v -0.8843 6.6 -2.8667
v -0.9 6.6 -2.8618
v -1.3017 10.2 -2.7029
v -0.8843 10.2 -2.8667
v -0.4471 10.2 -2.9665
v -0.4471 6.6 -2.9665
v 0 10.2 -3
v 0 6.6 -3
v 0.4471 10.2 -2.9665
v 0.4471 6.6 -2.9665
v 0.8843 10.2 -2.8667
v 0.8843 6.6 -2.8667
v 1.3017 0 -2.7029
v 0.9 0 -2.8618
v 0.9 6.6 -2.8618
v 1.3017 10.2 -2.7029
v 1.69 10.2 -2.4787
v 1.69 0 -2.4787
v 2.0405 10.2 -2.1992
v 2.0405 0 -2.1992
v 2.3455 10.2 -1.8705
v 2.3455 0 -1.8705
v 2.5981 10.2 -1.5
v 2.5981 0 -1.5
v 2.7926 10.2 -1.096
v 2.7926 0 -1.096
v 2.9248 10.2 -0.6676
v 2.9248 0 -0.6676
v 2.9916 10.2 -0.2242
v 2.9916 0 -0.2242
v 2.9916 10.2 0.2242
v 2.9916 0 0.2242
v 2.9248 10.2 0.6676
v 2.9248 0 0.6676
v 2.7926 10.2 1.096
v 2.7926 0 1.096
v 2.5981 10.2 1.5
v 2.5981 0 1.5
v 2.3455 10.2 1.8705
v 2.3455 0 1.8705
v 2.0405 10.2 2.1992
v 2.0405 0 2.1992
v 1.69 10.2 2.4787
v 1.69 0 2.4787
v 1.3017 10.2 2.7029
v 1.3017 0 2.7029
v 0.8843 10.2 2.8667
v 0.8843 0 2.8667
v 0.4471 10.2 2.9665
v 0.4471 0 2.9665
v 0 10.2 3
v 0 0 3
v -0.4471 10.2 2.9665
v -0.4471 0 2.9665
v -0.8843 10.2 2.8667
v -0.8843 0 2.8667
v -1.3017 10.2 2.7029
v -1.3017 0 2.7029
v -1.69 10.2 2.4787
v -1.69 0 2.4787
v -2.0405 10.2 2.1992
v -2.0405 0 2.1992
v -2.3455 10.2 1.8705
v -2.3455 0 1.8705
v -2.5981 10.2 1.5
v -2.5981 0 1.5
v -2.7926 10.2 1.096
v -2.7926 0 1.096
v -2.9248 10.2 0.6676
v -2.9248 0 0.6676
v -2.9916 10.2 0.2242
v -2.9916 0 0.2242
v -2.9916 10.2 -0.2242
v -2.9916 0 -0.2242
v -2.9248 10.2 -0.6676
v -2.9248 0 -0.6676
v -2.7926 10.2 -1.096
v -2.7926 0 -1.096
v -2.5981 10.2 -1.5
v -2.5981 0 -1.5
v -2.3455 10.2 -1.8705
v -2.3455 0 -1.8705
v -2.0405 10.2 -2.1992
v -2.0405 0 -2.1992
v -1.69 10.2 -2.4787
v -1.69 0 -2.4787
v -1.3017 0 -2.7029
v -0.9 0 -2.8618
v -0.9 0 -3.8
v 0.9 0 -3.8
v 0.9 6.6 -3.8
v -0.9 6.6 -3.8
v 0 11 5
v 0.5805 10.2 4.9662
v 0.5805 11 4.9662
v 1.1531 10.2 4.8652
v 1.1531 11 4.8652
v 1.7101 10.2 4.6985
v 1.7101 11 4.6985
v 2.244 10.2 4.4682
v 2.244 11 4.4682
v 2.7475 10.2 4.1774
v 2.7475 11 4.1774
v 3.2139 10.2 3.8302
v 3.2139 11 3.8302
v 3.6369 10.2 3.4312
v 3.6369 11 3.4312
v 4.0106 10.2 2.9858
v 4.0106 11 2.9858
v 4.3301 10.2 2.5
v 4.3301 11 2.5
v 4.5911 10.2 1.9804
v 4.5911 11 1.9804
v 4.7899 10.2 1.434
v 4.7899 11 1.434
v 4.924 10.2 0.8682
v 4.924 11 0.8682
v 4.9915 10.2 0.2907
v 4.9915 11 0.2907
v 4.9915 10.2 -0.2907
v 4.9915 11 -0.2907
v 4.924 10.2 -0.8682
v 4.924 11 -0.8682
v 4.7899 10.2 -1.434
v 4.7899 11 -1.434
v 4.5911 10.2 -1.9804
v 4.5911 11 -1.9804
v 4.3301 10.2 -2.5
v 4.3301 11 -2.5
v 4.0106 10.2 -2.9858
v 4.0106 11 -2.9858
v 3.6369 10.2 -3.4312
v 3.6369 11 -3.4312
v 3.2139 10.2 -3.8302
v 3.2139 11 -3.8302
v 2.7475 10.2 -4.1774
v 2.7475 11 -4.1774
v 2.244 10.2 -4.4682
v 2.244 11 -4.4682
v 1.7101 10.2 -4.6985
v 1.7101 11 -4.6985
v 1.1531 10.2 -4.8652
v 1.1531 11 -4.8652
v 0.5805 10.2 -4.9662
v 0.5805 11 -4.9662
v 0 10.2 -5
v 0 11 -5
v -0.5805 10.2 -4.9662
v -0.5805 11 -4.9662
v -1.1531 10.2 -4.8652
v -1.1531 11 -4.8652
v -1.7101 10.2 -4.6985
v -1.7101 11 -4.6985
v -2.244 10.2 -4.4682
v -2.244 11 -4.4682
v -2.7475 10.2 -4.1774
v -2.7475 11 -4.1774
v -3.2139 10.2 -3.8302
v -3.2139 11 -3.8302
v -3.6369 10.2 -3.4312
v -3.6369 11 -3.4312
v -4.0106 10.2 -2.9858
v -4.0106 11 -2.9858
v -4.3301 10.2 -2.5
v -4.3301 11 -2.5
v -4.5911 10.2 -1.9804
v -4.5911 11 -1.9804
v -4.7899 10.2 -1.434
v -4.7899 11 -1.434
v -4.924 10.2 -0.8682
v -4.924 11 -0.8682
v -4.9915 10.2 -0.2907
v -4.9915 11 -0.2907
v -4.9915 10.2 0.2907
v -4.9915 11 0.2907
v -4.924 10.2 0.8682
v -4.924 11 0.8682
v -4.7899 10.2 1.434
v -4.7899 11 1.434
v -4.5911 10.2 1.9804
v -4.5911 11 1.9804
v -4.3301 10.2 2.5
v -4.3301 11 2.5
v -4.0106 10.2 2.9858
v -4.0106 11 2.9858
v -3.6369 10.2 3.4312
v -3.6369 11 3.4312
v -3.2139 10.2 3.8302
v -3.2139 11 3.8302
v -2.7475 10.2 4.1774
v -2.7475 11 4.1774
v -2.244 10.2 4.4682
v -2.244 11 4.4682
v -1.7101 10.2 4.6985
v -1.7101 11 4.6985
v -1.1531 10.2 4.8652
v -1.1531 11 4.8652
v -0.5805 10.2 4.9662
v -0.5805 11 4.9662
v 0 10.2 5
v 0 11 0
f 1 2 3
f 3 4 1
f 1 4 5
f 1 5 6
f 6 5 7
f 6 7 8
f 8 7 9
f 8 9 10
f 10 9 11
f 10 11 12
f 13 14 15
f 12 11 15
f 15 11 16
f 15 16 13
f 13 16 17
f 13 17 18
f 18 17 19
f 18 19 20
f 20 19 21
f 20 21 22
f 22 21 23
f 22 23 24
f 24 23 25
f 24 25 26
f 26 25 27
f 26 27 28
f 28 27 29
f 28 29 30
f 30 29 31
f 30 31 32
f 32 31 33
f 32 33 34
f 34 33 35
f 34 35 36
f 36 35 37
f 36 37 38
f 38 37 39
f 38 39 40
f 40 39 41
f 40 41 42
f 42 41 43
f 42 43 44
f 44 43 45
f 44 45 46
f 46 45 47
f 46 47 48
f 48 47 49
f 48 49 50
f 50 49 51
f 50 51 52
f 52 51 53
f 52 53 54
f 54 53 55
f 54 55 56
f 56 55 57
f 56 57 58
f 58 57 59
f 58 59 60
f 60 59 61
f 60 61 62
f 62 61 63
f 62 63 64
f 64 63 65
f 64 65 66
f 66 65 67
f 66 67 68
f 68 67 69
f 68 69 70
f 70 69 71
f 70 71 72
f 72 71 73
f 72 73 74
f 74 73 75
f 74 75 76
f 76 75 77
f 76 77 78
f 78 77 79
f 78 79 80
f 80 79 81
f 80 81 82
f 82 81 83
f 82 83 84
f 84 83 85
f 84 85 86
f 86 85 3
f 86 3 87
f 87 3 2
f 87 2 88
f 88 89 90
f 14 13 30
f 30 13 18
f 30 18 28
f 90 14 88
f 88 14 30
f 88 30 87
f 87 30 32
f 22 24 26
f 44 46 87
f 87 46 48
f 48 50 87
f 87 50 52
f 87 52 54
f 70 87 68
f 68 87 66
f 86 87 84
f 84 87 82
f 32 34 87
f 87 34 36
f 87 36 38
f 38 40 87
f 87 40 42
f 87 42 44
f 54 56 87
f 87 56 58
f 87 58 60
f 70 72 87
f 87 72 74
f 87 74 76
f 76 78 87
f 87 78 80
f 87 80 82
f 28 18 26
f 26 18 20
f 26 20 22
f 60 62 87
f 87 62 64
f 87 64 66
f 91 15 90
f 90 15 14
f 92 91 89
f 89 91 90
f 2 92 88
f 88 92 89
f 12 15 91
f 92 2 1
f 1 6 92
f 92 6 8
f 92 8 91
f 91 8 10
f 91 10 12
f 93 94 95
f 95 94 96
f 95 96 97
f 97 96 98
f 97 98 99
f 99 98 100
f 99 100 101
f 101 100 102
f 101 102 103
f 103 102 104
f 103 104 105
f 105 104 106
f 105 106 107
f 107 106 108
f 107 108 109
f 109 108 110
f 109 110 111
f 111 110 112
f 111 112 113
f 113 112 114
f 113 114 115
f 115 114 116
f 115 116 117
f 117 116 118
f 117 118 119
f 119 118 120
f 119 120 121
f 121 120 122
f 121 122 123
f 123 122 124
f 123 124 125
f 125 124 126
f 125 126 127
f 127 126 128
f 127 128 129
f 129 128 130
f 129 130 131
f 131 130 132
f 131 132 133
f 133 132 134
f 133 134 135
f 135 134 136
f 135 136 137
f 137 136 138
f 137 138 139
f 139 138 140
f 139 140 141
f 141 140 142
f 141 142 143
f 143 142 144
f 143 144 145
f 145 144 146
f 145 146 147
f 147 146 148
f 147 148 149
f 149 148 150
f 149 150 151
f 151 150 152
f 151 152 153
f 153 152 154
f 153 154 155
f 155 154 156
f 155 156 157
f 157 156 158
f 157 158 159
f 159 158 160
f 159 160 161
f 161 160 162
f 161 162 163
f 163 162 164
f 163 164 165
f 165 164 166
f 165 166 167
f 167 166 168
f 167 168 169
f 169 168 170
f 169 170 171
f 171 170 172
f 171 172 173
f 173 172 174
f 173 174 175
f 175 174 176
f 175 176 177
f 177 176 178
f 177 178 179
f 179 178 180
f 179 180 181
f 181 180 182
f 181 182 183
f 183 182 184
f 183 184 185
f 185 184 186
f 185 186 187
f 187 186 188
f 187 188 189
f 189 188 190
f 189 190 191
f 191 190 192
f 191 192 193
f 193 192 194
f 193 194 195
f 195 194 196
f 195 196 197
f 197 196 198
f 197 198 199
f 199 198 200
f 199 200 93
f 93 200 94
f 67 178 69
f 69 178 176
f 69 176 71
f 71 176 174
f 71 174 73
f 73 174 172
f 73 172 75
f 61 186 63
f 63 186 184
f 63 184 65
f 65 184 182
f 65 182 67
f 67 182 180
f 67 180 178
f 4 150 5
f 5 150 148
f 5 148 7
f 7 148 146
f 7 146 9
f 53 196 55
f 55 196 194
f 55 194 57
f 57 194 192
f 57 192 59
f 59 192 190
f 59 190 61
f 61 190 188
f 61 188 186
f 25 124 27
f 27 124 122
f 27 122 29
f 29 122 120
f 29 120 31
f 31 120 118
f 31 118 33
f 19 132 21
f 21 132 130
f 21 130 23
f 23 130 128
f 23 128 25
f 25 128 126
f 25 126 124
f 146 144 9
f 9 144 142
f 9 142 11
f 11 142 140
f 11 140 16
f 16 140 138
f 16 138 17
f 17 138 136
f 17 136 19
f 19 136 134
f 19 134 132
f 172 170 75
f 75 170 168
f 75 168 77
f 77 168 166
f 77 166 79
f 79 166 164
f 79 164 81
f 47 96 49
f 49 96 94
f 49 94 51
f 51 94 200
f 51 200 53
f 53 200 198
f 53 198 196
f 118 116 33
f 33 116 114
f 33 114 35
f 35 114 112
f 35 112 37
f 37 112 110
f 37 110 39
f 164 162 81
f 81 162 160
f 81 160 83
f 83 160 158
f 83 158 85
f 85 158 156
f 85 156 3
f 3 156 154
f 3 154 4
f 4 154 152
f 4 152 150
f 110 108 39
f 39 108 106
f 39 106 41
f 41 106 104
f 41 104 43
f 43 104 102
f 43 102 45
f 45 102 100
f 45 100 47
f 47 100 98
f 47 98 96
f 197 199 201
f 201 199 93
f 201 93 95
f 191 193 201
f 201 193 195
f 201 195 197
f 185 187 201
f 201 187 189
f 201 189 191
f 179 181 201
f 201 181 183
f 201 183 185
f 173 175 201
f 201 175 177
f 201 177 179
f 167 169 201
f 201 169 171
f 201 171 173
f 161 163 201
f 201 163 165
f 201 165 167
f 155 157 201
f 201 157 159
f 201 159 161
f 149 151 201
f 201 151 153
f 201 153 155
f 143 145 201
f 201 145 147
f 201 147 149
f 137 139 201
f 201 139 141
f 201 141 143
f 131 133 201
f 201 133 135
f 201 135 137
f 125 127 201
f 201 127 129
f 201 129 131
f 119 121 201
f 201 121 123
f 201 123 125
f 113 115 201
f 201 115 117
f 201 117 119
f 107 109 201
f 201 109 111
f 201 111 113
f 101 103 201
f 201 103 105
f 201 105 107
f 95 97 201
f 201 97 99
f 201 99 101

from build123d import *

# Parameters (mm, degrees)
EXTRUDE_2_DEPTH = 11
EXTRUDE_3_DEPTH = 6.6
SKETCH_3_R      = 5
EXTRUDE_4_DEPTH = 0.8


with BuildPart() as part:
    # 스케치1 → 보스-돌출2 (new body)
    with BuildSketch(Plane(origin=(0, 0, 0), x_dir=(1, 0, 0), z_dir=(0, 1, 0))):
        with BuildLine():
            ThreePointArc((0.9, 2.861817604), (0, 3), (-0.9, 2.861817604))
            ThreePointArc((-0.9, 2.861817604), (-1.774823935, -2.418677324), (3, 0))
            ThreePointArc((3, 0), (2.418677324, 1.774823935), (0.9, 2.861817604))
        make_face()
    extrude(amount=EXTRUDE_2_DEPTH)

    # 스케치1<3> → 보스-돌출3 (add)
    with BuildSketch(Plane(origin=(0, 0, 0), x_dir=(1, 0, 0), z_dir=(0, 1, 0))):
        with BuildLine():
            Line((-0.9, 3.8), (-0.9, 2.861817604))
            ThreePointArc((-0.9, 2.861817604), (0, 3), (0.9, 2.861817604))
            Line((0.9, 2.861817604), (0.9, 3.8))
            Line((0.9, 3.8), (-0.9, 3.8))
        make_face()
    extrude(amount=EXTRUDE_3_DEPTH)

    # 스케치3 → 보스-돌출4 (add)
    with BuildSketch(Plane(origin=(0, 11, 0), x_dir=(1, 0, 0), z_dir=(0, 1, 0))):
        Circle(SKETCH_3_R)
    extrude(amount=-EXTRUDE_4_DEPTH)


solid = part.part
